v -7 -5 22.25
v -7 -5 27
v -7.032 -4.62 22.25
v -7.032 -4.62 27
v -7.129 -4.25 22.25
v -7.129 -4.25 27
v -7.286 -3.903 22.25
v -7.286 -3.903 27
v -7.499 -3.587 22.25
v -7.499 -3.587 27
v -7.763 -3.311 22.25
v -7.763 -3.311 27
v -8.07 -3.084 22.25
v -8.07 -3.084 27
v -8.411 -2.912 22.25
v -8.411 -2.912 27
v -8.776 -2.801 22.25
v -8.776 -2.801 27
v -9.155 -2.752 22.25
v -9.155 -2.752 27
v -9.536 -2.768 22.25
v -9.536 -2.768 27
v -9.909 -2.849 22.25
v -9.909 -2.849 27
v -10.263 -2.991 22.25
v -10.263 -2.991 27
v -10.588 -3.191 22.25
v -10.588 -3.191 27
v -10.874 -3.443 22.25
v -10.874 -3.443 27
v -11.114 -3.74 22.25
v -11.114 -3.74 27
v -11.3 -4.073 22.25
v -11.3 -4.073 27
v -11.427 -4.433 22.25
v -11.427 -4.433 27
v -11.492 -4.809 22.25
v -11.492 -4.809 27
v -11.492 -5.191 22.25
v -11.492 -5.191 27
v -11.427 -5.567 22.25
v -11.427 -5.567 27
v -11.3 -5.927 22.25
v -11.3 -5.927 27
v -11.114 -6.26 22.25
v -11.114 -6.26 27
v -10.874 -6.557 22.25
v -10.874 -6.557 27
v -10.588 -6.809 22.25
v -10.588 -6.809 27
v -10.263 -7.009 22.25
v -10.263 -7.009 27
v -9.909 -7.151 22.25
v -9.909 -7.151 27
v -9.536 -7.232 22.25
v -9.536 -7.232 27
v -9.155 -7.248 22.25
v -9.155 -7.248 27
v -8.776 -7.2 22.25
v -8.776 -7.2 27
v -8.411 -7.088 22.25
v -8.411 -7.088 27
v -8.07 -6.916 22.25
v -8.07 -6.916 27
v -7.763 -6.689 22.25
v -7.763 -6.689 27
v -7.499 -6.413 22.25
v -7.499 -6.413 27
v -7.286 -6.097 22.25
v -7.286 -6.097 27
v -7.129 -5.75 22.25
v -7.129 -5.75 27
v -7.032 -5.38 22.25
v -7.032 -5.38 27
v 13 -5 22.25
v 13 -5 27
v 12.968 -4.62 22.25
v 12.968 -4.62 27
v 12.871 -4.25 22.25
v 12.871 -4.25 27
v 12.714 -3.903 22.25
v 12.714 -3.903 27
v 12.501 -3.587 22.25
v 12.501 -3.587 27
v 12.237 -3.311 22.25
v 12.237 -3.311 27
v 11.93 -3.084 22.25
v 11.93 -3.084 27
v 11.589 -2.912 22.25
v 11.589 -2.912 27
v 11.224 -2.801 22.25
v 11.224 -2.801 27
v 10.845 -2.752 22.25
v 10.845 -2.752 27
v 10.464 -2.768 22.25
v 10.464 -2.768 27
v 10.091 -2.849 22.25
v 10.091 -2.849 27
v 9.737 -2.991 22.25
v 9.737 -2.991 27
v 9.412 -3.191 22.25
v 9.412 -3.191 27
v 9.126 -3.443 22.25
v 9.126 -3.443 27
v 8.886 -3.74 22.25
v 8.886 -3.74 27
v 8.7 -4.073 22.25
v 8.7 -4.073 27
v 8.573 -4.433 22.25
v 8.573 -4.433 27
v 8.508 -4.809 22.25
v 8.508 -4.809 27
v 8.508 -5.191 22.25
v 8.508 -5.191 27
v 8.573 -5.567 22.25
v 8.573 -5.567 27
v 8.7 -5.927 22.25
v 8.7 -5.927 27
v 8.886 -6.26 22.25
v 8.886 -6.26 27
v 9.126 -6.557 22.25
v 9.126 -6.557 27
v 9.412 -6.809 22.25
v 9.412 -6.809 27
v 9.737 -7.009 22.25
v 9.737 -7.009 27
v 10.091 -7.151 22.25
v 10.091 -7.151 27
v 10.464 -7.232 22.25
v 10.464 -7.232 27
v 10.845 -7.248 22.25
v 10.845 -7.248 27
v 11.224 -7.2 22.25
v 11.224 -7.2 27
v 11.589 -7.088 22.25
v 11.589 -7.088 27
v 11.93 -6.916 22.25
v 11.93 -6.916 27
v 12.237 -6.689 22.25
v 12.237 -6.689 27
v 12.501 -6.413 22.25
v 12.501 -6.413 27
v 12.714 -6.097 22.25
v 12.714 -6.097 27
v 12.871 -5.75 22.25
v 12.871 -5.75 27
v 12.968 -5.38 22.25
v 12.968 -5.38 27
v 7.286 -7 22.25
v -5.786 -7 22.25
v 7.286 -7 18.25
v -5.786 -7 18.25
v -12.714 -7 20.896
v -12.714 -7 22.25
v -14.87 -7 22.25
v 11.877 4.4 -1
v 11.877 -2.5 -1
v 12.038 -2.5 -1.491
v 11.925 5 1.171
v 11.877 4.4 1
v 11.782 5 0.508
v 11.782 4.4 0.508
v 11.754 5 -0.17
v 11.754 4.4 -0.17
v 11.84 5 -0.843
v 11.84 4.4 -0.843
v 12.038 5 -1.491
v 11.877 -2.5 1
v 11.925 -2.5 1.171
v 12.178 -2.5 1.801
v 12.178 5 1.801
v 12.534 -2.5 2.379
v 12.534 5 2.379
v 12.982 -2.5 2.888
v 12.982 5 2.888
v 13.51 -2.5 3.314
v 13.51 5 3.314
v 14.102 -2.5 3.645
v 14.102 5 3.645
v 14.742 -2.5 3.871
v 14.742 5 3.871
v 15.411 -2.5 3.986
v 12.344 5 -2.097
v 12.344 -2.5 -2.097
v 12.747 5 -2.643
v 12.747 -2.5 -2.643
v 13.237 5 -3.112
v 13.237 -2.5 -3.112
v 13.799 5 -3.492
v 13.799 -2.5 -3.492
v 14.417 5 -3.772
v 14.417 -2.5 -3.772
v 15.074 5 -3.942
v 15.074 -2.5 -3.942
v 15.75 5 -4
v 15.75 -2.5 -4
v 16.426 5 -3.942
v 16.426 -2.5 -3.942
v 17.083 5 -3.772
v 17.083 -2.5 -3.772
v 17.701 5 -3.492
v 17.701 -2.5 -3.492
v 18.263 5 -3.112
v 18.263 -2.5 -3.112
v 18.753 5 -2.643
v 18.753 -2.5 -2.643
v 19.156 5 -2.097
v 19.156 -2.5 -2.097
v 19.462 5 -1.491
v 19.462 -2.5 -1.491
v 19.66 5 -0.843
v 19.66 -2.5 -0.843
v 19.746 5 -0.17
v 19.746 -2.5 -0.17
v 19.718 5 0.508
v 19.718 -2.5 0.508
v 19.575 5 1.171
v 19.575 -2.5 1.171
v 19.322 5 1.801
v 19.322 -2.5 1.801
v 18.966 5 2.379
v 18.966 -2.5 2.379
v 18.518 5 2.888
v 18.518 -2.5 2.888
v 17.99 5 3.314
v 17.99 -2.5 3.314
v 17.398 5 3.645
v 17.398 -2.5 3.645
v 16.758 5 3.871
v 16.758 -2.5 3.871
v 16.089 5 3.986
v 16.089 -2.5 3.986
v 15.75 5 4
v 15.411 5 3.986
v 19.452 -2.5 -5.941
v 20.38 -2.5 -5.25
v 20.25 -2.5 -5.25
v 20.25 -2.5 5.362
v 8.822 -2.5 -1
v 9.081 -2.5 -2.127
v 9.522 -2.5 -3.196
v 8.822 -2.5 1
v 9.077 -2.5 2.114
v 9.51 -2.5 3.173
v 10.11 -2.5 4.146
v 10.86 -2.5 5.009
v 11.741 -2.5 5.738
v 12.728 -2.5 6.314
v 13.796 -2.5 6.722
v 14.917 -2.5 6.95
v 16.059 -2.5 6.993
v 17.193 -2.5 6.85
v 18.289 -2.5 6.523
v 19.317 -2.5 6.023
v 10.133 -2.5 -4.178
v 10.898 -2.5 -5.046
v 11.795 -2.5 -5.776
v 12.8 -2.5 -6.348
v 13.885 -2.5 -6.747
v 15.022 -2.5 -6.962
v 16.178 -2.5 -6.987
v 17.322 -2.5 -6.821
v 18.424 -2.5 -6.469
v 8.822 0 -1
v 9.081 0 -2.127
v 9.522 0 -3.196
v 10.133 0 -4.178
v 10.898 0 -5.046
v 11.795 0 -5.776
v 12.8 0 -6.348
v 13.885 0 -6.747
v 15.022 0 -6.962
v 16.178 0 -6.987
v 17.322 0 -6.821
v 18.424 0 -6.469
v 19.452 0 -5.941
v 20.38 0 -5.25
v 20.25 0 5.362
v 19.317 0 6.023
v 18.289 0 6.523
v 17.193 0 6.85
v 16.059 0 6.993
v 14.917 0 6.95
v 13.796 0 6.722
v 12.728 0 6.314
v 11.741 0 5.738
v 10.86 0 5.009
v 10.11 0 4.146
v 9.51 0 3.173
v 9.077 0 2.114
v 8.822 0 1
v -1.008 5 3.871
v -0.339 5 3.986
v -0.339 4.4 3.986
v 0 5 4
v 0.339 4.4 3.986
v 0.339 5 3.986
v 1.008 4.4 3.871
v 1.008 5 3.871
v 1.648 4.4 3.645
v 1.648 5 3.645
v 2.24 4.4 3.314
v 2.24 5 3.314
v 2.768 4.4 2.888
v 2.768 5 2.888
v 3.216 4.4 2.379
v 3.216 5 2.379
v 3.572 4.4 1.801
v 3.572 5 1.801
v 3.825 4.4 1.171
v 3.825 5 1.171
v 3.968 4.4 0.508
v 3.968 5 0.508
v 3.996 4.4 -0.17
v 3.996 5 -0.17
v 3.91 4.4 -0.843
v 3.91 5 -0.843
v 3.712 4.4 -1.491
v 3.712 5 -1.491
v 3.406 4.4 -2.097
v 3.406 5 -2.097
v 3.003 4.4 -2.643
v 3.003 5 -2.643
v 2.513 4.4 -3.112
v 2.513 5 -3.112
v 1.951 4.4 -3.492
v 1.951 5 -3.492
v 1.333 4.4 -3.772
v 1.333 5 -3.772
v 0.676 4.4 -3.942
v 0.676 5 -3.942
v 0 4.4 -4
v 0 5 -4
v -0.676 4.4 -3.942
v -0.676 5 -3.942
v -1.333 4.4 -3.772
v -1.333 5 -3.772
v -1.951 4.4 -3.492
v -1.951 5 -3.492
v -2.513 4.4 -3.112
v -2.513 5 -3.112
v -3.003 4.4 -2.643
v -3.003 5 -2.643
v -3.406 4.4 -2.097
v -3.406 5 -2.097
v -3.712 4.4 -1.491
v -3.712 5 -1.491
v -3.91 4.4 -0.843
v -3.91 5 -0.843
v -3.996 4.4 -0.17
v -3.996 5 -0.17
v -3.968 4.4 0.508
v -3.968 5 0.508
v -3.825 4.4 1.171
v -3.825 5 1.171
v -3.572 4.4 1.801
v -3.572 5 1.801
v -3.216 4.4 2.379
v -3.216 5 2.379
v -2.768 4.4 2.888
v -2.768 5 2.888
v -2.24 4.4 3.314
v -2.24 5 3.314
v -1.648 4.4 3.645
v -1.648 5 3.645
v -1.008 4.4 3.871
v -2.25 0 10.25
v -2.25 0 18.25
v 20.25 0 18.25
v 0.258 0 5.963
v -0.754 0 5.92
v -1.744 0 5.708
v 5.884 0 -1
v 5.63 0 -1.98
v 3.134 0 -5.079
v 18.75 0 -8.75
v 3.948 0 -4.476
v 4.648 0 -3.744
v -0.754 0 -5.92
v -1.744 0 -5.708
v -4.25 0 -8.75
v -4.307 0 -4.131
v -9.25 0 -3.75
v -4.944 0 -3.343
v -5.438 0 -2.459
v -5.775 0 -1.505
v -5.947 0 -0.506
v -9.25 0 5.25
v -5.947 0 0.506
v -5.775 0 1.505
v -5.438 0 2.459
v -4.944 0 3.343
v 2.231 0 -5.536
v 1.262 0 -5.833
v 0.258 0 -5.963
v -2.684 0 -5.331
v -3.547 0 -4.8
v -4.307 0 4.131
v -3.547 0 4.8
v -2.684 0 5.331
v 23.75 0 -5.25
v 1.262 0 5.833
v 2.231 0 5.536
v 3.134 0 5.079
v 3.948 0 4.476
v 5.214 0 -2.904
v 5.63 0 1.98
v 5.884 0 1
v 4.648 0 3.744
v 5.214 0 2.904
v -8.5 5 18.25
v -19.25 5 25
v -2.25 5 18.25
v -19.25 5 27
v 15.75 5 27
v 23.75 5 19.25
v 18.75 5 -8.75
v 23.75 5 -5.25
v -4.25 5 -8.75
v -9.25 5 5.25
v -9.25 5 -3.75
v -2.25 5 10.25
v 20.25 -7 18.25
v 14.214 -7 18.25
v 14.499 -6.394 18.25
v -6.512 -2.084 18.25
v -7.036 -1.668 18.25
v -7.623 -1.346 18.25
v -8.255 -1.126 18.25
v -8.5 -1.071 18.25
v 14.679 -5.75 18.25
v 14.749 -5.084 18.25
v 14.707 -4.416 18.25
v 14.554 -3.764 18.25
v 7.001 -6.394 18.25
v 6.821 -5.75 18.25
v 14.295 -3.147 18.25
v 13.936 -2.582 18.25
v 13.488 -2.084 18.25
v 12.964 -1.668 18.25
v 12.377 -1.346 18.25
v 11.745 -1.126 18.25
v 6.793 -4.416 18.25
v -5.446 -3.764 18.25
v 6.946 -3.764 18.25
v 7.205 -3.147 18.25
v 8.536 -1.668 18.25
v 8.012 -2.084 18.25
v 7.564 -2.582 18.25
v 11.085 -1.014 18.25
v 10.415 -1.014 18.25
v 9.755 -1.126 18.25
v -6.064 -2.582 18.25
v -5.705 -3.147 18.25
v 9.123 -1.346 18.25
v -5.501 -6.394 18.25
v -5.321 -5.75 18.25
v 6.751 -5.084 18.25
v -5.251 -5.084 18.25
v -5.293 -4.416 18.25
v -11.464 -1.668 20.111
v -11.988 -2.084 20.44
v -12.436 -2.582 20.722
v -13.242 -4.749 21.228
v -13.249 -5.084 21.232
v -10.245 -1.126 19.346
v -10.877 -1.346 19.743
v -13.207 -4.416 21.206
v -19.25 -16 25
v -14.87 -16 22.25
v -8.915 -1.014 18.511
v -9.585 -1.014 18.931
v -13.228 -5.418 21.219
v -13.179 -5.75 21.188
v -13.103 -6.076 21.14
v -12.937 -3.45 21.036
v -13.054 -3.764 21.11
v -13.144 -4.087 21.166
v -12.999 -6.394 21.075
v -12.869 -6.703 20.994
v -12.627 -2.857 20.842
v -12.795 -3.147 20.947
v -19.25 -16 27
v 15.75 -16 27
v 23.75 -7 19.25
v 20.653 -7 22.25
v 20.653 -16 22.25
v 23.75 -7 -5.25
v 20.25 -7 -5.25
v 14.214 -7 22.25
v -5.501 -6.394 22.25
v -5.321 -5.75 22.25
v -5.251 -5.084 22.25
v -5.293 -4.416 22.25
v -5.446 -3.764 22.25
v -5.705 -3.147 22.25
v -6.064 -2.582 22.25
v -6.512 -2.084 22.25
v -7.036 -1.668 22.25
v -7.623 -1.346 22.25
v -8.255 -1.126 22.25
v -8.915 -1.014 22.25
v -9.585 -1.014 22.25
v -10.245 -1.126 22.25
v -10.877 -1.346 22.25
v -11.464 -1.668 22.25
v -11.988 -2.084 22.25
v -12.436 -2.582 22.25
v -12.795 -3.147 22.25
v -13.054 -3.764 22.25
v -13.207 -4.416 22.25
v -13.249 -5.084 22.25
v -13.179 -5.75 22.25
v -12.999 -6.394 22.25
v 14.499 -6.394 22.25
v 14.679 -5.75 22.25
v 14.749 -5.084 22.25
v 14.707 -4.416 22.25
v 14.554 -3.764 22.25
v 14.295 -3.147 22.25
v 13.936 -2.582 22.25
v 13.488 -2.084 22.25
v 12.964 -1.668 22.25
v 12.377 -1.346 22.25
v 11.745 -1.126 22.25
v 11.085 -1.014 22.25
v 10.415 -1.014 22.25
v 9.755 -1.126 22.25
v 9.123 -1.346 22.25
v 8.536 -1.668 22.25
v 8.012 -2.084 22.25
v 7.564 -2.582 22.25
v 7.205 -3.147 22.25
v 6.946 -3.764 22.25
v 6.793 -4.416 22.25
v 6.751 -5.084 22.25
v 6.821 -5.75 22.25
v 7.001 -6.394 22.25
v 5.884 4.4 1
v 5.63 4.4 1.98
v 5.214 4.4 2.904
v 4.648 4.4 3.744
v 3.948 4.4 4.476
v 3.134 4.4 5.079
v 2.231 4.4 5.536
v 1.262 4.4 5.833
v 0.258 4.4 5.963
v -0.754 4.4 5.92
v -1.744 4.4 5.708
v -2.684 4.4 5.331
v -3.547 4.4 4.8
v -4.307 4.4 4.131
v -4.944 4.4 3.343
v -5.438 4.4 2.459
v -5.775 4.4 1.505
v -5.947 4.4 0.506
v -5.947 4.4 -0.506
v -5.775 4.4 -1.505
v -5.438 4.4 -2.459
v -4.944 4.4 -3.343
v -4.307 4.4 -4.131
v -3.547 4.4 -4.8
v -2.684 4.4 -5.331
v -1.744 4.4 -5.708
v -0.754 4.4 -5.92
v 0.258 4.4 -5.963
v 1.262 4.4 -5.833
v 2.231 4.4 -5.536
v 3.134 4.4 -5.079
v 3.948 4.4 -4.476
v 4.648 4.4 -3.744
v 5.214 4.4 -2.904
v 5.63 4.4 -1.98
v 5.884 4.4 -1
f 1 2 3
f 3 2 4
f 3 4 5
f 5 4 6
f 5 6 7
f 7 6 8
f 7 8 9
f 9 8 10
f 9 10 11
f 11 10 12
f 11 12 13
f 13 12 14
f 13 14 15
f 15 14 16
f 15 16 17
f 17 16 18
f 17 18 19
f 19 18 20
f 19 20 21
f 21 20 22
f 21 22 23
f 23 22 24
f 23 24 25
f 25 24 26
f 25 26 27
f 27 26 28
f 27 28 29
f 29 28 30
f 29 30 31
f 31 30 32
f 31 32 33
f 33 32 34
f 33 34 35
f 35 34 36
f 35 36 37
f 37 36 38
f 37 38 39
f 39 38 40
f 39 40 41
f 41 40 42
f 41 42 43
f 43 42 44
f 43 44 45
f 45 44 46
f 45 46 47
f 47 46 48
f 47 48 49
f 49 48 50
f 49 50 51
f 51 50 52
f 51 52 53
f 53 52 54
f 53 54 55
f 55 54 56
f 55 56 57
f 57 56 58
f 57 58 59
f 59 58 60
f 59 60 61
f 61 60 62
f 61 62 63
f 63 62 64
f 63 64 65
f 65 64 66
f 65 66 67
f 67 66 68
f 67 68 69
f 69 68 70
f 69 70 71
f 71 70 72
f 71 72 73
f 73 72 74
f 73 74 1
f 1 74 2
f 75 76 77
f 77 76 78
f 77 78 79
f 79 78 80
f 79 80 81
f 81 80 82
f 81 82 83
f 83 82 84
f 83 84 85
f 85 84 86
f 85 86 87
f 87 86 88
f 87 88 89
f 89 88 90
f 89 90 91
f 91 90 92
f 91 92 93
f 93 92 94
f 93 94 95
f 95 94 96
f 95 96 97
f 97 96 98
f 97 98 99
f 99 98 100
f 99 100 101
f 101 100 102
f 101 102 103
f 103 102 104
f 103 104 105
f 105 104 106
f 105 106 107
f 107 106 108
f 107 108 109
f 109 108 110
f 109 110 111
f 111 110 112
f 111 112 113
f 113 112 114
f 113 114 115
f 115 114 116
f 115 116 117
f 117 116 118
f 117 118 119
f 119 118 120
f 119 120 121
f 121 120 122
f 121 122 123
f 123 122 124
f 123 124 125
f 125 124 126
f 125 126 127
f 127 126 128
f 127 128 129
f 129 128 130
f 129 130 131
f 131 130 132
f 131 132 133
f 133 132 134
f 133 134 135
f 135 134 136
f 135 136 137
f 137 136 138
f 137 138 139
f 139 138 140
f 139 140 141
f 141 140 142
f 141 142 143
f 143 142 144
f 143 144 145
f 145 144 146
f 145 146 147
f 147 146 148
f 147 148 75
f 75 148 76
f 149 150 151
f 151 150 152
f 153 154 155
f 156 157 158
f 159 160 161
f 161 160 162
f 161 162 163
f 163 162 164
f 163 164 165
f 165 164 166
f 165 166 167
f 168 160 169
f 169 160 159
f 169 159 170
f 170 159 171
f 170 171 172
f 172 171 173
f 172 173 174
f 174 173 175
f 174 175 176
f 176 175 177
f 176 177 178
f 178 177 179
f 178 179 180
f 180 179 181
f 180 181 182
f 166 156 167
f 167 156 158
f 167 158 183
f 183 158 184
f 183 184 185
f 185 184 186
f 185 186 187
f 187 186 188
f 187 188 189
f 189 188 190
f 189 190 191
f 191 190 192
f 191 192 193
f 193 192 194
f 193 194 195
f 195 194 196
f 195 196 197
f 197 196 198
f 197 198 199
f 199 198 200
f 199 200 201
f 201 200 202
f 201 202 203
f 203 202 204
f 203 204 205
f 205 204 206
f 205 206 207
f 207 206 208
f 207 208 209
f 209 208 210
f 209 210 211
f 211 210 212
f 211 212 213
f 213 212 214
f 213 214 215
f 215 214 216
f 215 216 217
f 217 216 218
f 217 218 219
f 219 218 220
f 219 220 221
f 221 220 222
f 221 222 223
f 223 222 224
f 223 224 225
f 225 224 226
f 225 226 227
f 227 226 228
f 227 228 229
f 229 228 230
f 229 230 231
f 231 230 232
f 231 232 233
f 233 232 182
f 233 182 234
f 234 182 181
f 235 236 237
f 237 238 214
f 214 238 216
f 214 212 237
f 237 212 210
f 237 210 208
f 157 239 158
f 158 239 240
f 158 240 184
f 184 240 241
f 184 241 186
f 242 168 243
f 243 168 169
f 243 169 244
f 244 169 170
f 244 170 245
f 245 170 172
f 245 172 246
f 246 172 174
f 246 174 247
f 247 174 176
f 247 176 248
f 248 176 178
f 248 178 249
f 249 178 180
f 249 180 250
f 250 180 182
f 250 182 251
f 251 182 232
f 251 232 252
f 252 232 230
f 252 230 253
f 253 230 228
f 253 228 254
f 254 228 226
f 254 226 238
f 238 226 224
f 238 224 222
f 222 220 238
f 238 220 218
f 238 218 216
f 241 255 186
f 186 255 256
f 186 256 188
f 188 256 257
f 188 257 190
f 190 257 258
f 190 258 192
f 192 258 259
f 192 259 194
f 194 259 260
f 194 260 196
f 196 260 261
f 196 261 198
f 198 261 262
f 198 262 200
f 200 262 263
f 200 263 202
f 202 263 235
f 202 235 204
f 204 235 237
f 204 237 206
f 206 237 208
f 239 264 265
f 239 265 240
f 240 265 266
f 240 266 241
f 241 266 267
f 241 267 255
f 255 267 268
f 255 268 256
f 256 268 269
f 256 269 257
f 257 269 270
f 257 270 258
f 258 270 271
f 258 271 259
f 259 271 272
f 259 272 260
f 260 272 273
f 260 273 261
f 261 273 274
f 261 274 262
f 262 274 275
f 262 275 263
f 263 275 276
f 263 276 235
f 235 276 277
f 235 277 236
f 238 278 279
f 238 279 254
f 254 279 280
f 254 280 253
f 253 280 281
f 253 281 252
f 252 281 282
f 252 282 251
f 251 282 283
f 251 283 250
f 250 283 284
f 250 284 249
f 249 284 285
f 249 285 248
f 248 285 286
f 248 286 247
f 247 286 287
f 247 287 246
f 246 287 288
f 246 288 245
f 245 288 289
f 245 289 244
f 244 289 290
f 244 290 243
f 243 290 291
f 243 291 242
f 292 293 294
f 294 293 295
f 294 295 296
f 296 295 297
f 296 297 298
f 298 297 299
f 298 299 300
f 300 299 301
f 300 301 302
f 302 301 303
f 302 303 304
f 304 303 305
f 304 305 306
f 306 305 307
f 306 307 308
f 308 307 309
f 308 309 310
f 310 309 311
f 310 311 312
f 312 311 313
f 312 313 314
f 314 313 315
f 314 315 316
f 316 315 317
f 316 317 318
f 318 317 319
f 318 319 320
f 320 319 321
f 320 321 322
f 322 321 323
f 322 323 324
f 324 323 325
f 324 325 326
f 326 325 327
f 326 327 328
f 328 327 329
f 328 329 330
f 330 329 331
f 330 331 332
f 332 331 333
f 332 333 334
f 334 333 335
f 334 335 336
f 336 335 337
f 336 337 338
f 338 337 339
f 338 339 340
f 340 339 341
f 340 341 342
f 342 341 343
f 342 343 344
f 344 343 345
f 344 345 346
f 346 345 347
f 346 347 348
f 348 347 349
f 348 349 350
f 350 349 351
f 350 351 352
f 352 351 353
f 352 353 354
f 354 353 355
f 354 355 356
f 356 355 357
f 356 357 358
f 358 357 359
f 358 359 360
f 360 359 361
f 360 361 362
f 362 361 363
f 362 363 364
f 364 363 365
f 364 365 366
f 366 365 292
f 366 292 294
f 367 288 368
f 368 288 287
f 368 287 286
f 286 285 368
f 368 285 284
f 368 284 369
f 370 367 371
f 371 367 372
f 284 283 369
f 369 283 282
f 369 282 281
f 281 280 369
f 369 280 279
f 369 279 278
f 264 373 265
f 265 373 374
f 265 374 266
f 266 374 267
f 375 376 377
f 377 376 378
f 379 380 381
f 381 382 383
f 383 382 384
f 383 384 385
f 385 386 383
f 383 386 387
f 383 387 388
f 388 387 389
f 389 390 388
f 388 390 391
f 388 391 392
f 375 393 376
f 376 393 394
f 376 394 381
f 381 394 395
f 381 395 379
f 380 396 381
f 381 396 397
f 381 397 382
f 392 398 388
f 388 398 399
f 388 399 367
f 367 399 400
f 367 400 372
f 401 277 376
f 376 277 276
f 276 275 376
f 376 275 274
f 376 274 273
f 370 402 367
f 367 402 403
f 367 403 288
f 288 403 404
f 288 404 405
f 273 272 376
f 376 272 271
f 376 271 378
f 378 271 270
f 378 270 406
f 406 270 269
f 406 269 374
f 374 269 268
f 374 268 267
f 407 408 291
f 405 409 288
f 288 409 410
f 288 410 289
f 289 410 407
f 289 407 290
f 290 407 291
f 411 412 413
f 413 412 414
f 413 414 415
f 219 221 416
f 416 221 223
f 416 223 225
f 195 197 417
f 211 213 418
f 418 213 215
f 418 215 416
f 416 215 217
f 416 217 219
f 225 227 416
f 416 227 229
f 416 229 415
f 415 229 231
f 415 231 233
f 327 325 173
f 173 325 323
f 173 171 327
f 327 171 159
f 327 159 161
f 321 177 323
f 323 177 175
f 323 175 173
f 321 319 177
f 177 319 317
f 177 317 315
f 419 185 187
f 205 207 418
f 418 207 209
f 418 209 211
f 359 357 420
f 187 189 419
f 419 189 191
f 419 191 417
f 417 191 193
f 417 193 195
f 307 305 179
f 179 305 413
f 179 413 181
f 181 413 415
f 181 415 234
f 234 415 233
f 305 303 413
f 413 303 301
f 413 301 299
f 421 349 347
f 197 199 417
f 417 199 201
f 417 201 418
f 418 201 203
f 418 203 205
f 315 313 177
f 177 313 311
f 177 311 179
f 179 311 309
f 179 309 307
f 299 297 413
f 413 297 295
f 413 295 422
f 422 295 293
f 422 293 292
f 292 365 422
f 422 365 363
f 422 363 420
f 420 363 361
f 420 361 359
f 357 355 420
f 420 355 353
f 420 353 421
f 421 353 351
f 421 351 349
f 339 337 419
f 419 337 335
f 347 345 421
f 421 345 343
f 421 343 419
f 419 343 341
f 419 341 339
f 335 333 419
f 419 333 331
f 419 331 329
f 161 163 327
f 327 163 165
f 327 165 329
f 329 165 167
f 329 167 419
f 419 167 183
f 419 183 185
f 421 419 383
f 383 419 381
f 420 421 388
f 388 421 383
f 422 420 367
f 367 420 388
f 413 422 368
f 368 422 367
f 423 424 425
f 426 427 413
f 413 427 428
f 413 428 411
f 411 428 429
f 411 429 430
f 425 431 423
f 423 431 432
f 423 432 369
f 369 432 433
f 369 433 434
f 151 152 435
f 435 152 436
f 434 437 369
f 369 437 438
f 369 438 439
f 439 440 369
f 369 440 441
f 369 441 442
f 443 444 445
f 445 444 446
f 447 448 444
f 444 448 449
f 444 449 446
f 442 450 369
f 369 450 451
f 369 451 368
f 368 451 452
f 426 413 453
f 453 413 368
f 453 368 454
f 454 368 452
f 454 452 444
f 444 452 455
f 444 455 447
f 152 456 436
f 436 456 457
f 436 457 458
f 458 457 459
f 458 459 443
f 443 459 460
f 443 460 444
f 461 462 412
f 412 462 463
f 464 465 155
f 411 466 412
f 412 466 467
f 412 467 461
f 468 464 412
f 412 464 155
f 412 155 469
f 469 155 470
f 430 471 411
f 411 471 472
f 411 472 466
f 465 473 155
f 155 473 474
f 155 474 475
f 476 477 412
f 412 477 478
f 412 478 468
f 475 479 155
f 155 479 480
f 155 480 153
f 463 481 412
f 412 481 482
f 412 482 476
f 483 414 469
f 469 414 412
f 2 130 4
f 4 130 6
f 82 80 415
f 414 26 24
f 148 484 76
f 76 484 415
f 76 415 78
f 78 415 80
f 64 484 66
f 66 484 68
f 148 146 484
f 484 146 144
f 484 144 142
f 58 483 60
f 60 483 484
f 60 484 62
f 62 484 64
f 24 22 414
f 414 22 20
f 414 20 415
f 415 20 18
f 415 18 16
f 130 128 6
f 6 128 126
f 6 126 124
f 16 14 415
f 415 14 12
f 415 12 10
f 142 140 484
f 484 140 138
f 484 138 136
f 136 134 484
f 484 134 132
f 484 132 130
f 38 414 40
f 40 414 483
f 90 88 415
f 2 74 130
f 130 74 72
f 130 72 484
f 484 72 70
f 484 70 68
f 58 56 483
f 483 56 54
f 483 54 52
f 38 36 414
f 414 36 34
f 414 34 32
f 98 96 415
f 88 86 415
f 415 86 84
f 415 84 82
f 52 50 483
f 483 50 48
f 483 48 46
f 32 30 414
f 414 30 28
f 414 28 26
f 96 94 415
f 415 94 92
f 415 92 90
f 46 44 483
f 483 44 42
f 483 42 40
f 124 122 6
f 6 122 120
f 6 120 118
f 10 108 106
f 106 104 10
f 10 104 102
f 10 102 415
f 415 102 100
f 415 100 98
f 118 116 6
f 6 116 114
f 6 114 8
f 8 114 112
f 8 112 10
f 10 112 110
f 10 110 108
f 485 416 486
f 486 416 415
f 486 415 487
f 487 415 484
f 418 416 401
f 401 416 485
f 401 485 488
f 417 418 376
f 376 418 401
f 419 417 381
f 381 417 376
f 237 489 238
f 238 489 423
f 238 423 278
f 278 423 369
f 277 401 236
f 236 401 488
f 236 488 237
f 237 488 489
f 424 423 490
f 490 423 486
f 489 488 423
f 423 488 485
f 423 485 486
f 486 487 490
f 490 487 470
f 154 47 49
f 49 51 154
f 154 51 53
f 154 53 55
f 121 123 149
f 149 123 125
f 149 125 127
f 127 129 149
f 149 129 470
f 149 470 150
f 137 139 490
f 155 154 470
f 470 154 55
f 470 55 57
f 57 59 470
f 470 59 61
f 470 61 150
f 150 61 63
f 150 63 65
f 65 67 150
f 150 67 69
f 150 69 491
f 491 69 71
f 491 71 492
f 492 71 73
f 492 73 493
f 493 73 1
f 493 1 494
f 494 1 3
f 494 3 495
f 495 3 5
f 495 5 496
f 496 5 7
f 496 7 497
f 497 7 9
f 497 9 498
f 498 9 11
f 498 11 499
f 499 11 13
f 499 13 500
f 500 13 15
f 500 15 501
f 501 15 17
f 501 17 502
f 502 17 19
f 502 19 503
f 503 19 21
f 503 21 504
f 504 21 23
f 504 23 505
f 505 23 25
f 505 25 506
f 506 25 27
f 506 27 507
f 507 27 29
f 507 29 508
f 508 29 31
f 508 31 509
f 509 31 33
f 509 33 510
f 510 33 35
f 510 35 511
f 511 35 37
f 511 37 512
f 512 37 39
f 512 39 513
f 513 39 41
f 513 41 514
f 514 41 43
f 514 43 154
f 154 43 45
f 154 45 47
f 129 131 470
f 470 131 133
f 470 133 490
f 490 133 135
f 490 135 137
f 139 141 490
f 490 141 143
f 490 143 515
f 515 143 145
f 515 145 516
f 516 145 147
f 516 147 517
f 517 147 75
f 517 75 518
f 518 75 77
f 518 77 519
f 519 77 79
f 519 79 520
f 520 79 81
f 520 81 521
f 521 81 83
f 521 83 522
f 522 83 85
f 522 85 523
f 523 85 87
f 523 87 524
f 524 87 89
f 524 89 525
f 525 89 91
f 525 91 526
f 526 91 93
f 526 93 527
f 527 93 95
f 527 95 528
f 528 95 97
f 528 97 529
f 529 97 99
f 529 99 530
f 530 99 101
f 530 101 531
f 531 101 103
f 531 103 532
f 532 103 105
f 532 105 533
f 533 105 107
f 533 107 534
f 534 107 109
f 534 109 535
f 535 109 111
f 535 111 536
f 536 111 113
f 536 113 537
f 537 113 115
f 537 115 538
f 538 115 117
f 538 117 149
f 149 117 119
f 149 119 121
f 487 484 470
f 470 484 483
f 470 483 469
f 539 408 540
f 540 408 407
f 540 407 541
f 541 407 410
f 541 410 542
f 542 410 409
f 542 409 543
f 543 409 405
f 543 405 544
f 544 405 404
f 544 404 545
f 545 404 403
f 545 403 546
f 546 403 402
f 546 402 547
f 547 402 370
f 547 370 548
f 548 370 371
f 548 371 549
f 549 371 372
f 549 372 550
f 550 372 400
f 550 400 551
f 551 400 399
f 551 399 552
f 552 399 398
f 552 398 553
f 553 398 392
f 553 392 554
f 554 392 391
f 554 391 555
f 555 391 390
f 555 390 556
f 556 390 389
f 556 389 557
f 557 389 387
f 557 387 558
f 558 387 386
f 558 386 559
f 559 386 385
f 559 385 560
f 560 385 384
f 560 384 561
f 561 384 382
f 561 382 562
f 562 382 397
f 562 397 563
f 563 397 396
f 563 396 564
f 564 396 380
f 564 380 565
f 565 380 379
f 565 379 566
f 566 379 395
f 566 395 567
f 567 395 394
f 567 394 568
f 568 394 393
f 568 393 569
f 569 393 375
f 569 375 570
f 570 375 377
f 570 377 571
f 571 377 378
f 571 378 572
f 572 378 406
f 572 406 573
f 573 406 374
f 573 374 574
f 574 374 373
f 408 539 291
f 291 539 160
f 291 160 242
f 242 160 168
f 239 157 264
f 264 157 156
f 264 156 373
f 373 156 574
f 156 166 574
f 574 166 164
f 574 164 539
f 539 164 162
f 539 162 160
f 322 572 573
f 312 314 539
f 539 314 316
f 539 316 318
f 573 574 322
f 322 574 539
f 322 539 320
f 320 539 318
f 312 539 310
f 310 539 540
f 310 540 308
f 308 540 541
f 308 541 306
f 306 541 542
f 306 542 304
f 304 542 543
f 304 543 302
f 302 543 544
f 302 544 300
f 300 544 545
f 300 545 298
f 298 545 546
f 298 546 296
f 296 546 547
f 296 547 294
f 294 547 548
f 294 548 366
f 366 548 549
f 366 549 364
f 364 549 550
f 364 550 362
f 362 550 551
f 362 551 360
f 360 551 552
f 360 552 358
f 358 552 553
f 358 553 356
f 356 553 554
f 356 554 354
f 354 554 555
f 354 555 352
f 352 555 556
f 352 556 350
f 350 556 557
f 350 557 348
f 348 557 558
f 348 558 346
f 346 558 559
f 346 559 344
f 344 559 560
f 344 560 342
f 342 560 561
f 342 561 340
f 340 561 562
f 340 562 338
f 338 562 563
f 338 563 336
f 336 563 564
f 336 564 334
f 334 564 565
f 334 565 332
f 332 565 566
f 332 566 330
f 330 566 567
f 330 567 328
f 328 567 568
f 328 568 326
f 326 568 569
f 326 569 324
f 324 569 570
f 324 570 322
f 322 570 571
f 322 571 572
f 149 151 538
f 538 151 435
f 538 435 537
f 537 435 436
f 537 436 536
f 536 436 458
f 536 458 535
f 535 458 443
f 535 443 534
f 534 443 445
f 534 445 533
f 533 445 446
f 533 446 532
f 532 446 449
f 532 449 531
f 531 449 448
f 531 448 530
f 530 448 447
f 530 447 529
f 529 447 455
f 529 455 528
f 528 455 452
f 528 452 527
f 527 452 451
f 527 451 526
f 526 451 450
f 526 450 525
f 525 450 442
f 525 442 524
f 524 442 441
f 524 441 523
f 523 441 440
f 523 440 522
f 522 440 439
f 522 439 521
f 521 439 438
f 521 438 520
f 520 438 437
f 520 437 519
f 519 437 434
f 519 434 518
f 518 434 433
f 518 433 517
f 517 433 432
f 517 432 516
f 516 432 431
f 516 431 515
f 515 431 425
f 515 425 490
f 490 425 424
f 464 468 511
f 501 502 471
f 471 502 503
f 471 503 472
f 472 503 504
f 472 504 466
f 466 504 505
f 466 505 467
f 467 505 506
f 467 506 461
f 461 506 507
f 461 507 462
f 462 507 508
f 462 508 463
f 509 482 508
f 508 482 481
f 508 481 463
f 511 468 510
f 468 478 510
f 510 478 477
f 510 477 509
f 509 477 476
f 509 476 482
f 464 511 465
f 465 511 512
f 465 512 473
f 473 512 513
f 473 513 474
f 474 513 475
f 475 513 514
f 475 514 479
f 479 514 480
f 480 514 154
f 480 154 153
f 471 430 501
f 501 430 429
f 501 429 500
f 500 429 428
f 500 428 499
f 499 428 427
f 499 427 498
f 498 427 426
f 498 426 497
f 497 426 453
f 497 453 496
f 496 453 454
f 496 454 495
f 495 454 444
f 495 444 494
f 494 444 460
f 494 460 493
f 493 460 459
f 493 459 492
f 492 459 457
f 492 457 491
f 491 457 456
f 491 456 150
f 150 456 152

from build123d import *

# Parameters (mm, degrees)
SKETCH1_R           = 4
BOSS_EXTRUDE1_DEPTH = 5
BOSS_EXTRUDE2_DEPTH = 7
BOSS_EXTRUDE3_DEPTH = 16
SKETCH6_R           = 7
SKETCH6_R_2         = 4
BOSS_EXTRUDE4_DEPTH = 2.5
CUT_EXTRUDE1_DEPTH  = 4.4
CUT_EXTRUDE2_DEPTH  = 21.4
SKETCH8_R           = 2.25
CUT_EXTRUDE3_DEPTH  = 36.75
SKETCH9_R           = 4
CUT_EXTRUDE4_DEPTH  = 4


with BuildPart() as part:
    # Sketch1 → Boss-Extrude1 (new body)
    with BuildSketch(Plane(origin=(0, 0, 0), x_dir=(1, 0, 0), z_dir=(0, 1, 0))):
        Polygon((-4.25, 8.75), (18.75, 8.75), (23.75, 5.25), (23.75, -19.25), (15.75, -27), (-19.25, -27), (-19.25, -25), (-8.5, -18.25), (-2.25, -18.25), (-2.25, -10.25), (-9.25, -5.25), (-9.25, 3.75), align=None)
        Circle(SKETCH1_R, mode=Mode.SUBTRACT)
        with Locations((15.75, 0)):
            Circle(SKETCH1_R, mode=Mode.SUBTRACT)
    extrude(amount=BOSS_EXTRUDE1_DEPTH)

    # Sketch2 → Boss-Extrude2 (add)
    with BuildSketch(Plane.XZ):
        Polygon((23.75, 19.25), (23.75, -5.25), (20.25, -5.25), (20.25, 18.25), (-8.5, 18.25), (-14.87037037, 22.25), (20.653225806, 22.25), align=None)
    extrude(amount=BOSS_EXTRUDE2_DEPTH)

    # Sketch3 → Boss-Extrude3 (add)
    with BuildSketch(Plane.XZ):
        Polygon((-14.87037037, 22.25), (20.653225806, 22.25), (15.75, 27), (-19.25, 27), (-19.25, 25), align=None)
    extrude(amount=BOSS_EXTRUDE3_DEPTH)

    # Sketch6 → Boss-Extrude4 (add)
    with BuildSketch(Plane.XZ):
        with Locations((15.75, 0)):
            Circle(SKETCH6_R)
        with Locations((15.75, 0)):
            Circle(SKETCH6_R_2, mode=Mode.SUBTRACT)
    extrude(amount=BOSS_EXTRUDE4_DEPTH)

    # Sketch4 → Cut-Extrude1 (cut)
    with BuildSketch(Plane.XZ):
        with BuildLine():
            Line((5.883782294, -1), (12.395898034, -1))
            ThreePointArc((12.395898034, -1), (12.25, 0), (12.395898034, 1))
            Line((12.395898034, 1), (5.883782294, 1))
            ThreePointArc((5.883782294, 1), (-5.968156673, 0), (5.883782294, -1))
        make_face()
    extrude(amount=-CUT_EXTRUDE1_DEPTH, mode=Mode.SUBTRACT)

    # Sketch7 → Cut-Extrude2 (cut, through all)
    with BuildSketch(Plane.XZ.offset(-4.4)):
        with BuildLine():
            Line((5.883782294, -1), (11.877016654, -1))
            ThreePointArc((11.877016654, -1), (11.75, 0), (11.877016654, 1))
            Line((11.877016654, 1), (5.883782294, 1))
            ThreePointArc((5.883782294, 1), (-5.968156673, 0), (5.883782294, -1))
        make_face()
    extrude(amount=CUT_EXTRUDE2_DEPTH, mode=Mode.SUBTRACT)

    # Sketch8 → Cut-Extrude3 (cut, through all)
    with BuildSketch(Plane.XY.offset(27)):
        with Locations((10.75, -5)):
            Circle(SKETCH8_R)
        with Locations((-9.25, -5)):
            Circle(SKETCH8_R)
    extrude(amount=-CUT_EXTRUDE3_DEPTH, mode=Mode.SUBTRACT)

    # Sketch9 → Cut-Extrude4 (cut)
    with BuildSketch(Plane(origin=(0, 0, 18.25), x_dir=(-1, 0, 0), z_dir=(0, 0, -1))):
        with Locations((-10.75, -5)):
            Circle(SKETCH9_R)
        with Locations((9.25, -5)):
            Circle(SKETCH9_R)
    extrude(amount=-CUT_EXTRUDE4_DEPTH, mode=Mode.SUBTRACT)


solid = part.part
